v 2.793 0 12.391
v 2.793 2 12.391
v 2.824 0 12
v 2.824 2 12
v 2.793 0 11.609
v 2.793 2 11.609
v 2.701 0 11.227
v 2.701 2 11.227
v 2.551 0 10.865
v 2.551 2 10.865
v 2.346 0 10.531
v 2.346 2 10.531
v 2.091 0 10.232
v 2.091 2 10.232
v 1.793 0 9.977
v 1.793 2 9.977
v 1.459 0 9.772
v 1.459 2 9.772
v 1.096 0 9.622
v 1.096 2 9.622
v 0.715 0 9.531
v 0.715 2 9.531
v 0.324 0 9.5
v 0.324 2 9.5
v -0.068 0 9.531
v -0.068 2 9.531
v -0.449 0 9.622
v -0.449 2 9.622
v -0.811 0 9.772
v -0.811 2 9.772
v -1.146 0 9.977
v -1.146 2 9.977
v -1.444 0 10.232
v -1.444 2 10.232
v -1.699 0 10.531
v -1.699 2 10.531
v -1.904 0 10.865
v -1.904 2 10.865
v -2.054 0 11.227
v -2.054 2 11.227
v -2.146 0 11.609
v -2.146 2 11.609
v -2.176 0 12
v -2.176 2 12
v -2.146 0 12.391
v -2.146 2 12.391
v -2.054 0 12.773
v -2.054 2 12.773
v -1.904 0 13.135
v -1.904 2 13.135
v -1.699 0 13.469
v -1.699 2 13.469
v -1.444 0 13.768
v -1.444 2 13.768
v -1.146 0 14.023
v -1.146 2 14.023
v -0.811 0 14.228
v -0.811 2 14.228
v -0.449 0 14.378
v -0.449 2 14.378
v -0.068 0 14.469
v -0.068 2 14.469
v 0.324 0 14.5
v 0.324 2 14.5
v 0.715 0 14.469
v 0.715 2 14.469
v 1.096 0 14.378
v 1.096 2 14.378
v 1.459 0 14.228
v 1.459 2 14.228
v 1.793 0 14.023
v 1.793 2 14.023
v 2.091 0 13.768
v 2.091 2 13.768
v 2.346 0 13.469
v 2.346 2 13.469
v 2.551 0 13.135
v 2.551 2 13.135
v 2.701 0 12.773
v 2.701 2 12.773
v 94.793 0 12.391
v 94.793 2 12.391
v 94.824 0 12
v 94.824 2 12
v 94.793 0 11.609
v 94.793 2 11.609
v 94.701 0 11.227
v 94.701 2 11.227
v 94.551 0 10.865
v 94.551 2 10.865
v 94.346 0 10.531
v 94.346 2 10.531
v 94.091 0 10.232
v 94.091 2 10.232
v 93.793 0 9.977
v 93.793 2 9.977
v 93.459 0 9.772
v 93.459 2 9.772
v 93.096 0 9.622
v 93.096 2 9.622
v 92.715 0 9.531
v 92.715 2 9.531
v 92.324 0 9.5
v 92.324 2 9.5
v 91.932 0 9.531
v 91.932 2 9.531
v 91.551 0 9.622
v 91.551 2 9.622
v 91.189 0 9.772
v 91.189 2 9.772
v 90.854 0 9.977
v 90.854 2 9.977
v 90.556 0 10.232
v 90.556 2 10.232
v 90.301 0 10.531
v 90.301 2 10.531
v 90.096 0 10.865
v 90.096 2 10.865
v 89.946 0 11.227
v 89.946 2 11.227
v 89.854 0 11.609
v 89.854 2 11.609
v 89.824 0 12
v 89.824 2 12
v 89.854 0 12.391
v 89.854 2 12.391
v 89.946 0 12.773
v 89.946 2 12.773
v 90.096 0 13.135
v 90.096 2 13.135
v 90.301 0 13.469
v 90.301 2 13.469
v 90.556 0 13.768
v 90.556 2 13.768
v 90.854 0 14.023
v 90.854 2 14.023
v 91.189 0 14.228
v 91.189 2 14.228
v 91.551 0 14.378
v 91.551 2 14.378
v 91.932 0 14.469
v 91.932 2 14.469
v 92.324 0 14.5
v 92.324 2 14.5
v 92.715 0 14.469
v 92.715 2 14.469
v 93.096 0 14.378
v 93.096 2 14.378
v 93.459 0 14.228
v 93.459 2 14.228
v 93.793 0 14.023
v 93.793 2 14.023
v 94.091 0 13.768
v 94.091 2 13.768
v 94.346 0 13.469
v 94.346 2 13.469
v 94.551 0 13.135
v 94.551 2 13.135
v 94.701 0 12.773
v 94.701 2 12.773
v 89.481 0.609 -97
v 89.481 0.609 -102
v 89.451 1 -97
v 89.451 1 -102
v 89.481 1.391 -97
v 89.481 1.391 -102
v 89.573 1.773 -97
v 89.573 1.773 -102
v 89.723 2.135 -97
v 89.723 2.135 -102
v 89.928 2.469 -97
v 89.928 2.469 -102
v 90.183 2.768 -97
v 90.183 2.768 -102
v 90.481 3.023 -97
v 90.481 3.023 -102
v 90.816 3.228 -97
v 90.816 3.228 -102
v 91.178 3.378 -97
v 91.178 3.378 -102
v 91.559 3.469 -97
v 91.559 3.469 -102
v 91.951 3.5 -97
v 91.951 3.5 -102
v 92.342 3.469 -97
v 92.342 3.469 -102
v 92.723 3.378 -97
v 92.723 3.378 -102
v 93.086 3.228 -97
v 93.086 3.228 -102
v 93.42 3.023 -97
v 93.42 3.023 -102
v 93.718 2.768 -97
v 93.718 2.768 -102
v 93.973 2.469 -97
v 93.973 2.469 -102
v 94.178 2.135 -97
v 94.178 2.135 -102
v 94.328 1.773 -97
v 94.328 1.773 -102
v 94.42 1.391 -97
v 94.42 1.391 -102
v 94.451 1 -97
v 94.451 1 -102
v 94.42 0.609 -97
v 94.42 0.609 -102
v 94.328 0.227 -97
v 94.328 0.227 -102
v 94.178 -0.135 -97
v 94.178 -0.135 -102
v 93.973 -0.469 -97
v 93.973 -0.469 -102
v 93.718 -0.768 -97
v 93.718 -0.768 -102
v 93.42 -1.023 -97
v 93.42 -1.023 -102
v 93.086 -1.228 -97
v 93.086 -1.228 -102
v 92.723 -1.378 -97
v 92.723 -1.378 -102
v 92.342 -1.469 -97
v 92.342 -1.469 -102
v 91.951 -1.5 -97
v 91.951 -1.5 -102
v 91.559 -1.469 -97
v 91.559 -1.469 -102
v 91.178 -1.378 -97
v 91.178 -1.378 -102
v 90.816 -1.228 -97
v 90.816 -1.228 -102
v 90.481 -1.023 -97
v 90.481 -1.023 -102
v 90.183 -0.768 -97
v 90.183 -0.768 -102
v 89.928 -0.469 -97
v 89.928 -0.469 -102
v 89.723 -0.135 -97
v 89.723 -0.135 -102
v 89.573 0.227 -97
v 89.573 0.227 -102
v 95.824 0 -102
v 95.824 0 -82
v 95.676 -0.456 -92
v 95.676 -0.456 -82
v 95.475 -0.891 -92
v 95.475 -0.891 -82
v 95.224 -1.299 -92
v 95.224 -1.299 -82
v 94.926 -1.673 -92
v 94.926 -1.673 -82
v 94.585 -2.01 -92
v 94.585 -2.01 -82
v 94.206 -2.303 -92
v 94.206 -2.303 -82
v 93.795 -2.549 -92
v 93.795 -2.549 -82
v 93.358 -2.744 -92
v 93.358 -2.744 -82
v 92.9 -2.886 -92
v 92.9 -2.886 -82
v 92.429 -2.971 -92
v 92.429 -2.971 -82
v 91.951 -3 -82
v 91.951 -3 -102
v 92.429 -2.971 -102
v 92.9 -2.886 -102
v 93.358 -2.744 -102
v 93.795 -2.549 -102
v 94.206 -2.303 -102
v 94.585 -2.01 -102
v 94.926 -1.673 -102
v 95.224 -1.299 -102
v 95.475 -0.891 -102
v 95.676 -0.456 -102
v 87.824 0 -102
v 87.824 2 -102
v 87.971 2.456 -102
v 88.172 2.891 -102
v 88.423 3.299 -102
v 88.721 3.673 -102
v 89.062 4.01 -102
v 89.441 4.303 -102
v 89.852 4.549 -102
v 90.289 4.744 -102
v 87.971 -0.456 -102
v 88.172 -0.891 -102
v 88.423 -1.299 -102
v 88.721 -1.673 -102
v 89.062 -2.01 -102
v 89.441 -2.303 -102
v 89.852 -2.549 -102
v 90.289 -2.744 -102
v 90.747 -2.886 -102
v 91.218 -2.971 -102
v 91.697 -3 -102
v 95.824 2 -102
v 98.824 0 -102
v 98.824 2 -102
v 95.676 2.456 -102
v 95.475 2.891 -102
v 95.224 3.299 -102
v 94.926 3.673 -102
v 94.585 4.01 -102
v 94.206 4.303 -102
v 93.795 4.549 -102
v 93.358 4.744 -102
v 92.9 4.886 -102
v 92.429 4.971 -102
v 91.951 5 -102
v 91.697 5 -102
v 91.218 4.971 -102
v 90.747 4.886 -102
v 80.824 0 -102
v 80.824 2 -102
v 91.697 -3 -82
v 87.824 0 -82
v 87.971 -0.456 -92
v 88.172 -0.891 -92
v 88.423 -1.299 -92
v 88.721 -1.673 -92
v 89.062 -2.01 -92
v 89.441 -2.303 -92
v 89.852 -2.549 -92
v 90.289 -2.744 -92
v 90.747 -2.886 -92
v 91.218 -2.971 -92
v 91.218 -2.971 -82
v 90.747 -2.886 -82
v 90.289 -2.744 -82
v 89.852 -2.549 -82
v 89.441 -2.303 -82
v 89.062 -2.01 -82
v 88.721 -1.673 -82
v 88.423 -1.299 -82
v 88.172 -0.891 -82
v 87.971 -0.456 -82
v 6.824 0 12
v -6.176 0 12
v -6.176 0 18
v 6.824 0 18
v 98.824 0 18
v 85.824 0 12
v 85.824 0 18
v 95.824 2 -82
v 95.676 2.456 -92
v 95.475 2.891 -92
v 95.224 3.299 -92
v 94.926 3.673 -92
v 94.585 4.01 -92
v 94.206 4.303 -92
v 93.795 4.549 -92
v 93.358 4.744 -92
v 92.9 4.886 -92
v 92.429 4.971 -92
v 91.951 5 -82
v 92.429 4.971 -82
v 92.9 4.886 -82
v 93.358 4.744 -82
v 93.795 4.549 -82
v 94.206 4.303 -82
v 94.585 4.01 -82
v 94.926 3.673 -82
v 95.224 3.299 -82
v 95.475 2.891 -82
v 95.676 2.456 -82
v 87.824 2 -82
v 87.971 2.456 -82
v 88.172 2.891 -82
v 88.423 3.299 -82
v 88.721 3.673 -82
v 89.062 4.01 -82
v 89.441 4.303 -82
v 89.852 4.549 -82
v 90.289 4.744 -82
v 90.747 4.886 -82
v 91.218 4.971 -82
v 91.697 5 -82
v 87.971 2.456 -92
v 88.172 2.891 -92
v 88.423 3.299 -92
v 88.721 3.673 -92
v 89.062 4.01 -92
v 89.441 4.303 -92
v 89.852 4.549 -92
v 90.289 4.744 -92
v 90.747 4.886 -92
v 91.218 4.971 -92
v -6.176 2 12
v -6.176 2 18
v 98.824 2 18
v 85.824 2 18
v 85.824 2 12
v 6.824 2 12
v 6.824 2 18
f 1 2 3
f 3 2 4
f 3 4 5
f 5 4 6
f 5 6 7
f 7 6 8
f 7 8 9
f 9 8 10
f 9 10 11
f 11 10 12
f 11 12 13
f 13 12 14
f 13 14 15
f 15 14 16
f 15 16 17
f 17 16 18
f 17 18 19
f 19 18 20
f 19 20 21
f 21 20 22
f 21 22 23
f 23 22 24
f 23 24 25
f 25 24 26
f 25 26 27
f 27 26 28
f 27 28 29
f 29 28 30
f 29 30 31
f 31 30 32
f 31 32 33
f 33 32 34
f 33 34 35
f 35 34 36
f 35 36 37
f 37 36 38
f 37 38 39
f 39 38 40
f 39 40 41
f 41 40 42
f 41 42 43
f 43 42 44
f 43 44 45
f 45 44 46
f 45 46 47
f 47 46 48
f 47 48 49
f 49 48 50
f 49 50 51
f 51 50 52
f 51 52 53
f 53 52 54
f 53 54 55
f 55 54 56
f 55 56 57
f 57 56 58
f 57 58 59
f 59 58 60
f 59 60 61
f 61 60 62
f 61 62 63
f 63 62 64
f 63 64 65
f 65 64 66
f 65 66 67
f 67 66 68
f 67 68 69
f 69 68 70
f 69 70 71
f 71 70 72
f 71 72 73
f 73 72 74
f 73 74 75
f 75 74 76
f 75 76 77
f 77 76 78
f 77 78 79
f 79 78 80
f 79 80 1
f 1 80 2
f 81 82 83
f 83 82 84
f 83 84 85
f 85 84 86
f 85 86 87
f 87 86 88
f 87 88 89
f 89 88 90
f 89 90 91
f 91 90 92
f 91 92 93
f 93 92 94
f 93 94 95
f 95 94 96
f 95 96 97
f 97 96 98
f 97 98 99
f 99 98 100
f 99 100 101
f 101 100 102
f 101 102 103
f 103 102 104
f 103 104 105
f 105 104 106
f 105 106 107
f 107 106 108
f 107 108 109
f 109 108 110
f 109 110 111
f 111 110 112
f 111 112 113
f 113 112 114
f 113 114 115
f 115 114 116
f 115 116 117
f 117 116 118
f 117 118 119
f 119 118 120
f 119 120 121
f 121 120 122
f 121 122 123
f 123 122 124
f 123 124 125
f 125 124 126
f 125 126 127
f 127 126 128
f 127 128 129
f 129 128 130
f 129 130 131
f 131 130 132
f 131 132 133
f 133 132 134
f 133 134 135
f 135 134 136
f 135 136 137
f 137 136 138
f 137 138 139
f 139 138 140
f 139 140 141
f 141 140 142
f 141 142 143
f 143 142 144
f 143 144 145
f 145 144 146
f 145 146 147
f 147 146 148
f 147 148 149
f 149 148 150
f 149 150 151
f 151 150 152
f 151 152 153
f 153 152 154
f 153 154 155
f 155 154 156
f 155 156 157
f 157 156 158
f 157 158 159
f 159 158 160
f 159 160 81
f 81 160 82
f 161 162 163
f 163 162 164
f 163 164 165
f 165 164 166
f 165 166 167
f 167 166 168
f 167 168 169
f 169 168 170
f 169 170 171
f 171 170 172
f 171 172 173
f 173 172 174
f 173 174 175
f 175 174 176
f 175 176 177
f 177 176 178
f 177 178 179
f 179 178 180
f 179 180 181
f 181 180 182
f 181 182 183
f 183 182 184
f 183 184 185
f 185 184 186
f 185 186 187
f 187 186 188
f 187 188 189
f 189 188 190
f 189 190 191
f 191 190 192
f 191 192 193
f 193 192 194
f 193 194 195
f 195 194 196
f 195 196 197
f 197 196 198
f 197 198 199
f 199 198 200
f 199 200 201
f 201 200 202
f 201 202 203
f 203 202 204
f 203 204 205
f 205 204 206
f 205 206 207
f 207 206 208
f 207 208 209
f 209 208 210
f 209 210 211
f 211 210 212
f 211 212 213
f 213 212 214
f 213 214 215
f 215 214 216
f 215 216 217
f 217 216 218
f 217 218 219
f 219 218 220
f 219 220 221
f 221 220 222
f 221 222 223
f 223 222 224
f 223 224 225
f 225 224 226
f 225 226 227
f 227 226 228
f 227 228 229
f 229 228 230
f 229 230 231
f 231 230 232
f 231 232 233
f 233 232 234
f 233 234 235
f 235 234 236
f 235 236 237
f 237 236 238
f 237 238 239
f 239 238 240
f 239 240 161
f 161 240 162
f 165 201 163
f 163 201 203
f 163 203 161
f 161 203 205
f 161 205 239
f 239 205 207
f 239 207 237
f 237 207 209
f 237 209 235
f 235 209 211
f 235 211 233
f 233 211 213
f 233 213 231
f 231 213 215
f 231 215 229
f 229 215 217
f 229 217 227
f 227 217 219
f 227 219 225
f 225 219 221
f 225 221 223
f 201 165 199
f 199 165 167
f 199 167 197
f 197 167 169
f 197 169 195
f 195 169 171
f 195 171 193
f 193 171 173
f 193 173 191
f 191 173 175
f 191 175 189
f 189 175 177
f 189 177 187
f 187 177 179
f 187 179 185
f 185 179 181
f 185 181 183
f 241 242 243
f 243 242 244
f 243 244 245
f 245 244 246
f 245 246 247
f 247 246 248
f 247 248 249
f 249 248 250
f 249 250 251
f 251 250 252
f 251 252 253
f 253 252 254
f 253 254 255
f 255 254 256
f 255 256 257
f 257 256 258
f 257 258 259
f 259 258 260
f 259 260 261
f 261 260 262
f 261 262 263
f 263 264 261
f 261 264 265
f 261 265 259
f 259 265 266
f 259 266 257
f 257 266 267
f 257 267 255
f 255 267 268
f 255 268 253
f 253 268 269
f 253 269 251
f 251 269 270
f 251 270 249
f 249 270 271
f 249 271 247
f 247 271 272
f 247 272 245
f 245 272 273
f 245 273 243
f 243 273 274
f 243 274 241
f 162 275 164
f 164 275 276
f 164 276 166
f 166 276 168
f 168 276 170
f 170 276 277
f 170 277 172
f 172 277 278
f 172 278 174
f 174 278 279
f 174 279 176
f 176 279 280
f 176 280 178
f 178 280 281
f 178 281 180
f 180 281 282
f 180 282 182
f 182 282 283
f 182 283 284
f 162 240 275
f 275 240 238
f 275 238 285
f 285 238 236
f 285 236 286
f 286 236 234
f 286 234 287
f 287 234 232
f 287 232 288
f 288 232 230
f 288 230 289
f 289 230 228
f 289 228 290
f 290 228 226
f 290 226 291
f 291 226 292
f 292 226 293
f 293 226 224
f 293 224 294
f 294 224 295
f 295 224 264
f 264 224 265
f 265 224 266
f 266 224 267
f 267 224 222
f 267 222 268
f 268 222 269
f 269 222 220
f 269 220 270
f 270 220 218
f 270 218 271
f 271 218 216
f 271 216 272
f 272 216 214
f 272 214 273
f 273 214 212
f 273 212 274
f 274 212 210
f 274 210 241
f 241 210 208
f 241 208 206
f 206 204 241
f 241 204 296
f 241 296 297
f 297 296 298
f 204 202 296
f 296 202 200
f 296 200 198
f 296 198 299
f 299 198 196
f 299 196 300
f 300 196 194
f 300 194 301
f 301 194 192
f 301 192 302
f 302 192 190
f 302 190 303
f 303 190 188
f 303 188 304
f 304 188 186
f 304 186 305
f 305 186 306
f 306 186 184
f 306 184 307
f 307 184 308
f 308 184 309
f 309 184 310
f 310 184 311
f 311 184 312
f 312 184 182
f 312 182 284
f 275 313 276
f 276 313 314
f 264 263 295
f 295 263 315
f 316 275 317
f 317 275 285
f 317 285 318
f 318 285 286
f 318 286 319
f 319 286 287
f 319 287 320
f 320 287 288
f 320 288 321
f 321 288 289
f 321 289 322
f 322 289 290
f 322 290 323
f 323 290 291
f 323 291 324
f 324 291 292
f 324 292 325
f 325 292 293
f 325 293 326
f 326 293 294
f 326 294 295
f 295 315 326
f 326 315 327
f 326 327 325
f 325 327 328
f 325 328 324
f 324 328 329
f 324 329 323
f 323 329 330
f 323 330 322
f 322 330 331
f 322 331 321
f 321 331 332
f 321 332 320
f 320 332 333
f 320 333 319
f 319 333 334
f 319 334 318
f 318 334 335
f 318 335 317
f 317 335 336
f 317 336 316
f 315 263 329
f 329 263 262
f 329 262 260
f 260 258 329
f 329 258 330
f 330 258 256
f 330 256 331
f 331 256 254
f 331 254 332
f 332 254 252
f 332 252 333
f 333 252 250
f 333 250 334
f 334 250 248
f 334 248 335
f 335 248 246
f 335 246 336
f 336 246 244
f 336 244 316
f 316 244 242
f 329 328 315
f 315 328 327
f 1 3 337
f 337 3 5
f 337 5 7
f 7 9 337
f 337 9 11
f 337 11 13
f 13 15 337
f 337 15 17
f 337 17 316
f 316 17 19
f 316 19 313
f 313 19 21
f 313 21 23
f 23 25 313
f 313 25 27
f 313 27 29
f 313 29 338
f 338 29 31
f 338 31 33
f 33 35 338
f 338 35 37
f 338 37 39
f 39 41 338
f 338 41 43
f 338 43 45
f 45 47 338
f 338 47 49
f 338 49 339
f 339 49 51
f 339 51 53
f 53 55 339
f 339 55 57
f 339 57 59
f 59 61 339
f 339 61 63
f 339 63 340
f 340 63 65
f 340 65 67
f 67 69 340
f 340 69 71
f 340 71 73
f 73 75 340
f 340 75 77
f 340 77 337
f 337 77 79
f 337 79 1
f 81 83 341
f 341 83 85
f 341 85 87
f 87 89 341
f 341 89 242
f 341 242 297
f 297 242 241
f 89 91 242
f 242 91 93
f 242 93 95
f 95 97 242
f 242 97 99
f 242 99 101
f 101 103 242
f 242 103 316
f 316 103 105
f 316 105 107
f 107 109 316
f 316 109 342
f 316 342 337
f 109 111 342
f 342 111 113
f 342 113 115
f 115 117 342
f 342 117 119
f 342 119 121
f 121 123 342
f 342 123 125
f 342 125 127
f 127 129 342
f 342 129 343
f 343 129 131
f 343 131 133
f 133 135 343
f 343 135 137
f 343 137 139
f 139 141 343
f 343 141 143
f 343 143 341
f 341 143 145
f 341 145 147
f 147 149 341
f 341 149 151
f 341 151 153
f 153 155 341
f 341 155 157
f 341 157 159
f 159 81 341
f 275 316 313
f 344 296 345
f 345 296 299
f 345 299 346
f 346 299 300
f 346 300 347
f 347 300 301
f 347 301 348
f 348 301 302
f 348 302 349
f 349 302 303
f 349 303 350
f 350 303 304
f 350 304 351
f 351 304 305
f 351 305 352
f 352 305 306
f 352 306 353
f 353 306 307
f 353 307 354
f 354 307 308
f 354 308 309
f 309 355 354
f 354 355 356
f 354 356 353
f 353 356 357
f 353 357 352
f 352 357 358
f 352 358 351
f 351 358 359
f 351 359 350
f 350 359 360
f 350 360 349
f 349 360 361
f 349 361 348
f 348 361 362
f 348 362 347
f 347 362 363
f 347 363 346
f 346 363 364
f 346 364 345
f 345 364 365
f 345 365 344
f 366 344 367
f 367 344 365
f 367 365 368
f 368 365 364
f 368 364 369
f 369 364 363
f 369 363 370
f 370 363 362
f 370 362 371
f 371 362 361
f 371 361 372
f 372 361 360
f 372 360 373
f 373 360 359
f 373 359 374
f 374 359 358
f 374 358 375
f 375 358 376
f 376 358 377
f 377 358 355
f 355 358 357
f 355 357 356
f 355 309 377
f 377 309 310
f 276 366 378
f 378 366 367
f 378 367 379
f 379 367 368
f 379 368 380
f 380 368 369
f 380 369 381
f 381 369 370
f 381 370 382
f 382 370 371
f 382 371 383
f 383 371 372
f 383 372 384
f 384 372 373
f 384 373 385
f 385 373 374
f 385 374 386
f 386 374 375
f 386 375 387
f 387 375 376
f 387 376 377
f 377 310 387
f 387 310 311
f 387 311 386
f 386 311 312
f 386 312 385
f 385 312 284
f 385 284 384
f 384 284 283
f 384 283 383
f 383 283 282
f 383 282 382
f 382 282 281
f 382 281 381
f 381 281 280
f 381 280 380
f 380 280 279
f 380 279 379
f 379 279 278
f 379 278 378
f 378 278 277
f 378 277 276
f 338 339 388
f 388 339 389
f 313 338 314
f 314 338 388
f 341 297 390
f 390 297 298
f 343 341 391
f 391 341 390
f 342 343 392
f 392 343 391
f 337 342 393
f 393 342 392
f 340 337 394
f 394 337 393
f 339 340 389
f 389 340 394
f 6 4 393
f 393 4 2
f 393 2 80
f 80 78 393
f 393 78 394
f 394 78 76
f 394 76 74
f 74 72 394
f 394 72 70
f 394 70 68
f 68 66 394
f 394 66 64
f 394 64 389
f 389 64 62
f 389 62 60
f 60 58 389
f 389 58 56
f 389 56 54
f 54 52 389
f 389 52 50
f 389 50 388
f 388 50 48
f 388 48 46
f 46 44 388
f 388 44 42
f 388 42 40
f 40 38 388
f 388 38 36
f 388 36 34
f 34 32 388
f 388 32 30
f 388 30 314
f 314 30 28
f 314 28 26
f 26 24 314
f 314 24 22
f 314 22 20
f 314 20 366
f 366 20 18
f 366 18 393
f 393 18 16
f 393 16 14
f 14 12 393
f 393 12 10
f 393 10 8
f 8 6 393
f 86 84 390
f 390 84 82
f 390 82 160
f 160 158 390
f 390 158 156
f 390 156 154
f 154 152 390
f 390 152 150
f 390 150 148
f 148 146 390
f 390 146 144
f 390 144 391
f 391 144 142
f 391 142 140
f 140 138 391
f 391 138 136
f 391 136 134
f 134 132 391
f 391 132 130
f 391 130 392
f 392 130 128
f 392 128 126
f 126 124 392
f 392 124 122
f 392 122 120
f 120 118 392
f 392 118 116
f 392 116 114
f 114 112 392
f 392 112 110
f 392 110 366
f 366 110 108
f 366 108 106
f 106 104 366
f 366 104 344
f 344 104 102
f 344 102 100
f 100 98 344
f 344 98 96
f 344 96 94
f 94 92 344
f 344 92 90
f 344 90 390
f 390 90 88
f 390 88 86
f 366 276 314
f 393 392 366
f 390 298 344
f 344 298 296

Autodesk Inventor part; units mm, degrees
ref_plane "YZ Plane" through (0, 0, 0) normal (1, 0, 0) x (0, 1, 0)
ref_plane "XZ Plane" through (0, 0, 0) normal (0, 1, 0) x (-1, 0, 0)
ref_plane "XY Plane" through (0, 0, 0) normal (0, 0, 1) x (1, 0, 0)
sketch "Sketch1" plane through (0, 0, 0) normal (0, 1, 0) x (-1, 0, 0)
  line L0 (6.1765, 12) -> (-98.8235, 12)
  line L1 (-98.8235, 12) -> (-98.8235, -102)
  line L2 (-6.8235, 12) -> (-6.8235, 18)
  line L3 (-6.8235, 18) -> (6.1765, 18)
  line L4 (6.1765, 18) -> (6.1765, 12)
  line L5 (-98.8235, 12) -> (-98.8235, 18)
  line L6 (-98.8235, 18) -> (-85.8235, 18)
  line L7 (-85.8235, 18) -> (-85.8235, 12)
  line L8 (-98.8235, -102) -> (-85.8235, -87.8857)
  line L9 (-6.8235, -2.1143) -> (6.1765, 12)
  line L10 (-98.8235, -102) -> (-80.8235, -102)
  line L11 (6.1765, 12) -> (-80.8235, -102)
  point P0 (0, 0)
  point P1 (-96.8235, 18)
  point P2 (-96.8235, 18)
  dimension "d0" = 114
  dimension "d1" = 105
  dimension "d2" = 13
  dimension "d3" = 6
  dimension "d4" = 13
  dimension "d5" = 6
  dimension "d6" = 18
extrude "Extrusion1" add sketch "Sketch1" along normal blind 2
sketch "Sketch2" plane through (0, 2, 0) normal (0, 1, 0) x (1, 0, 0)
  line L0 (98.8235, 102) -> (80.8235, 102) projected
  line L1 (95.8235, 102) -> (87.8235, 102)
  line L2 (87.8235, 102) -> (87.8235, 82)
  line L3 (87.8235, 82) -> (95.8235, 82)
  line L4 (95.8235, 82) -> (95.8235, 102)
  line L5 (98.8235, -18) -> (98.8235, 102) projected
  point P0 (0, 0)
  dimension "d9" = 20
  dimension "d10" = 8
  dimension "d11" = 3
extrude "Extrusion2" add sketch "Sketch2" along normal blind 3
fillet "Fillet1" radius 4 2 edges at (87.8235, 5, -92) (95.8235, 5, -92)
sketch "Sketch3" plane through (0, 0, 0) normal (0, -1, 0) x (1, 0, 0)
  line L0 (87.8235, -102) -> (80.8235, -102) projected
  line L1 (87.8235, -102) -> (95.8235, -102)
  line L2 (95.8235, -102) -> (95.8235, -82)
  line L3 (95.8235, -82) -> (87.8235, -82)
  line L4 (87.8235, -82) -> (87.8235, -102)
  line L5 (98.8235, 18) -> (98.8235, -102) projected
  point P0 (0, 0)
  dimension "d16" = 20
  dimension "d17" = 8
  dimension "d18" = 3
extrude "Extrusion3" add sketch "Sketch3" along normal blind 3
fillet "Fillet3" radius 4 2 edges at (87.8235, -3, -92) (95.8235, -3, -92)
sketch "Sketch4" plane through (80.8235, 0, -102) normal (0, 0, -1) x (-1, 0, 0)
  arc A0 (-15, 0) -> (-11.127, -3) centre (-11.127, 1) ccw projected
  line L0 (-11.127, 4.8105) -> (-11.127, -3)
  circle A1 centre (-11.127, 1) radius 2.5
  point P0 (80.8235, 0)
  dimension "d25" = 5
extrude "Extrusion4" cut sketch "Sketch4" against normal blind 5
sketch "Sketch5" plane through (0, 2, 0) normal (0, 1, 0) x (1, 0, 0)
  line L0 (85.8235, -12) -> (85.8235, -18) projected
  line L1 (85.8235, -12) -> (98.8235, -12)
  line L2 (98.8235, -18) -> (98.8235, 102) projected
  circle A0 centre (92.3235, -12) radius 2.5
  point P0 (0, 0)
  dimension "d26" = 5
extrude "Extrusion5" cut sketch "Sketch5" against normal blind 2
sketch "Sketch6" plane through (0, 2, 0) normal (0, 1, 0) x (1, 0, 0)
  line L0 (-6.1765, -12) -> (-6.1765, -18) projected
  line L1 (6.8235, -18) -> (6.8235, -12) projected
  line L2 (-6.1765, -12) -> (6.8235, -12)
  circle A0 centre (0.3235, -12) radius 2.5
  point P0 (0, 0)
  dimension "d29" = 5
  dimension "d32" = 6.5
  dimension "d33" = 6
extrude "Extrusion6" cut sketch "Sketch6" against normal blind 2
equation "\"d23\" = d22"
equation "\"d22\" = 5"
properties part number "Triangle"
